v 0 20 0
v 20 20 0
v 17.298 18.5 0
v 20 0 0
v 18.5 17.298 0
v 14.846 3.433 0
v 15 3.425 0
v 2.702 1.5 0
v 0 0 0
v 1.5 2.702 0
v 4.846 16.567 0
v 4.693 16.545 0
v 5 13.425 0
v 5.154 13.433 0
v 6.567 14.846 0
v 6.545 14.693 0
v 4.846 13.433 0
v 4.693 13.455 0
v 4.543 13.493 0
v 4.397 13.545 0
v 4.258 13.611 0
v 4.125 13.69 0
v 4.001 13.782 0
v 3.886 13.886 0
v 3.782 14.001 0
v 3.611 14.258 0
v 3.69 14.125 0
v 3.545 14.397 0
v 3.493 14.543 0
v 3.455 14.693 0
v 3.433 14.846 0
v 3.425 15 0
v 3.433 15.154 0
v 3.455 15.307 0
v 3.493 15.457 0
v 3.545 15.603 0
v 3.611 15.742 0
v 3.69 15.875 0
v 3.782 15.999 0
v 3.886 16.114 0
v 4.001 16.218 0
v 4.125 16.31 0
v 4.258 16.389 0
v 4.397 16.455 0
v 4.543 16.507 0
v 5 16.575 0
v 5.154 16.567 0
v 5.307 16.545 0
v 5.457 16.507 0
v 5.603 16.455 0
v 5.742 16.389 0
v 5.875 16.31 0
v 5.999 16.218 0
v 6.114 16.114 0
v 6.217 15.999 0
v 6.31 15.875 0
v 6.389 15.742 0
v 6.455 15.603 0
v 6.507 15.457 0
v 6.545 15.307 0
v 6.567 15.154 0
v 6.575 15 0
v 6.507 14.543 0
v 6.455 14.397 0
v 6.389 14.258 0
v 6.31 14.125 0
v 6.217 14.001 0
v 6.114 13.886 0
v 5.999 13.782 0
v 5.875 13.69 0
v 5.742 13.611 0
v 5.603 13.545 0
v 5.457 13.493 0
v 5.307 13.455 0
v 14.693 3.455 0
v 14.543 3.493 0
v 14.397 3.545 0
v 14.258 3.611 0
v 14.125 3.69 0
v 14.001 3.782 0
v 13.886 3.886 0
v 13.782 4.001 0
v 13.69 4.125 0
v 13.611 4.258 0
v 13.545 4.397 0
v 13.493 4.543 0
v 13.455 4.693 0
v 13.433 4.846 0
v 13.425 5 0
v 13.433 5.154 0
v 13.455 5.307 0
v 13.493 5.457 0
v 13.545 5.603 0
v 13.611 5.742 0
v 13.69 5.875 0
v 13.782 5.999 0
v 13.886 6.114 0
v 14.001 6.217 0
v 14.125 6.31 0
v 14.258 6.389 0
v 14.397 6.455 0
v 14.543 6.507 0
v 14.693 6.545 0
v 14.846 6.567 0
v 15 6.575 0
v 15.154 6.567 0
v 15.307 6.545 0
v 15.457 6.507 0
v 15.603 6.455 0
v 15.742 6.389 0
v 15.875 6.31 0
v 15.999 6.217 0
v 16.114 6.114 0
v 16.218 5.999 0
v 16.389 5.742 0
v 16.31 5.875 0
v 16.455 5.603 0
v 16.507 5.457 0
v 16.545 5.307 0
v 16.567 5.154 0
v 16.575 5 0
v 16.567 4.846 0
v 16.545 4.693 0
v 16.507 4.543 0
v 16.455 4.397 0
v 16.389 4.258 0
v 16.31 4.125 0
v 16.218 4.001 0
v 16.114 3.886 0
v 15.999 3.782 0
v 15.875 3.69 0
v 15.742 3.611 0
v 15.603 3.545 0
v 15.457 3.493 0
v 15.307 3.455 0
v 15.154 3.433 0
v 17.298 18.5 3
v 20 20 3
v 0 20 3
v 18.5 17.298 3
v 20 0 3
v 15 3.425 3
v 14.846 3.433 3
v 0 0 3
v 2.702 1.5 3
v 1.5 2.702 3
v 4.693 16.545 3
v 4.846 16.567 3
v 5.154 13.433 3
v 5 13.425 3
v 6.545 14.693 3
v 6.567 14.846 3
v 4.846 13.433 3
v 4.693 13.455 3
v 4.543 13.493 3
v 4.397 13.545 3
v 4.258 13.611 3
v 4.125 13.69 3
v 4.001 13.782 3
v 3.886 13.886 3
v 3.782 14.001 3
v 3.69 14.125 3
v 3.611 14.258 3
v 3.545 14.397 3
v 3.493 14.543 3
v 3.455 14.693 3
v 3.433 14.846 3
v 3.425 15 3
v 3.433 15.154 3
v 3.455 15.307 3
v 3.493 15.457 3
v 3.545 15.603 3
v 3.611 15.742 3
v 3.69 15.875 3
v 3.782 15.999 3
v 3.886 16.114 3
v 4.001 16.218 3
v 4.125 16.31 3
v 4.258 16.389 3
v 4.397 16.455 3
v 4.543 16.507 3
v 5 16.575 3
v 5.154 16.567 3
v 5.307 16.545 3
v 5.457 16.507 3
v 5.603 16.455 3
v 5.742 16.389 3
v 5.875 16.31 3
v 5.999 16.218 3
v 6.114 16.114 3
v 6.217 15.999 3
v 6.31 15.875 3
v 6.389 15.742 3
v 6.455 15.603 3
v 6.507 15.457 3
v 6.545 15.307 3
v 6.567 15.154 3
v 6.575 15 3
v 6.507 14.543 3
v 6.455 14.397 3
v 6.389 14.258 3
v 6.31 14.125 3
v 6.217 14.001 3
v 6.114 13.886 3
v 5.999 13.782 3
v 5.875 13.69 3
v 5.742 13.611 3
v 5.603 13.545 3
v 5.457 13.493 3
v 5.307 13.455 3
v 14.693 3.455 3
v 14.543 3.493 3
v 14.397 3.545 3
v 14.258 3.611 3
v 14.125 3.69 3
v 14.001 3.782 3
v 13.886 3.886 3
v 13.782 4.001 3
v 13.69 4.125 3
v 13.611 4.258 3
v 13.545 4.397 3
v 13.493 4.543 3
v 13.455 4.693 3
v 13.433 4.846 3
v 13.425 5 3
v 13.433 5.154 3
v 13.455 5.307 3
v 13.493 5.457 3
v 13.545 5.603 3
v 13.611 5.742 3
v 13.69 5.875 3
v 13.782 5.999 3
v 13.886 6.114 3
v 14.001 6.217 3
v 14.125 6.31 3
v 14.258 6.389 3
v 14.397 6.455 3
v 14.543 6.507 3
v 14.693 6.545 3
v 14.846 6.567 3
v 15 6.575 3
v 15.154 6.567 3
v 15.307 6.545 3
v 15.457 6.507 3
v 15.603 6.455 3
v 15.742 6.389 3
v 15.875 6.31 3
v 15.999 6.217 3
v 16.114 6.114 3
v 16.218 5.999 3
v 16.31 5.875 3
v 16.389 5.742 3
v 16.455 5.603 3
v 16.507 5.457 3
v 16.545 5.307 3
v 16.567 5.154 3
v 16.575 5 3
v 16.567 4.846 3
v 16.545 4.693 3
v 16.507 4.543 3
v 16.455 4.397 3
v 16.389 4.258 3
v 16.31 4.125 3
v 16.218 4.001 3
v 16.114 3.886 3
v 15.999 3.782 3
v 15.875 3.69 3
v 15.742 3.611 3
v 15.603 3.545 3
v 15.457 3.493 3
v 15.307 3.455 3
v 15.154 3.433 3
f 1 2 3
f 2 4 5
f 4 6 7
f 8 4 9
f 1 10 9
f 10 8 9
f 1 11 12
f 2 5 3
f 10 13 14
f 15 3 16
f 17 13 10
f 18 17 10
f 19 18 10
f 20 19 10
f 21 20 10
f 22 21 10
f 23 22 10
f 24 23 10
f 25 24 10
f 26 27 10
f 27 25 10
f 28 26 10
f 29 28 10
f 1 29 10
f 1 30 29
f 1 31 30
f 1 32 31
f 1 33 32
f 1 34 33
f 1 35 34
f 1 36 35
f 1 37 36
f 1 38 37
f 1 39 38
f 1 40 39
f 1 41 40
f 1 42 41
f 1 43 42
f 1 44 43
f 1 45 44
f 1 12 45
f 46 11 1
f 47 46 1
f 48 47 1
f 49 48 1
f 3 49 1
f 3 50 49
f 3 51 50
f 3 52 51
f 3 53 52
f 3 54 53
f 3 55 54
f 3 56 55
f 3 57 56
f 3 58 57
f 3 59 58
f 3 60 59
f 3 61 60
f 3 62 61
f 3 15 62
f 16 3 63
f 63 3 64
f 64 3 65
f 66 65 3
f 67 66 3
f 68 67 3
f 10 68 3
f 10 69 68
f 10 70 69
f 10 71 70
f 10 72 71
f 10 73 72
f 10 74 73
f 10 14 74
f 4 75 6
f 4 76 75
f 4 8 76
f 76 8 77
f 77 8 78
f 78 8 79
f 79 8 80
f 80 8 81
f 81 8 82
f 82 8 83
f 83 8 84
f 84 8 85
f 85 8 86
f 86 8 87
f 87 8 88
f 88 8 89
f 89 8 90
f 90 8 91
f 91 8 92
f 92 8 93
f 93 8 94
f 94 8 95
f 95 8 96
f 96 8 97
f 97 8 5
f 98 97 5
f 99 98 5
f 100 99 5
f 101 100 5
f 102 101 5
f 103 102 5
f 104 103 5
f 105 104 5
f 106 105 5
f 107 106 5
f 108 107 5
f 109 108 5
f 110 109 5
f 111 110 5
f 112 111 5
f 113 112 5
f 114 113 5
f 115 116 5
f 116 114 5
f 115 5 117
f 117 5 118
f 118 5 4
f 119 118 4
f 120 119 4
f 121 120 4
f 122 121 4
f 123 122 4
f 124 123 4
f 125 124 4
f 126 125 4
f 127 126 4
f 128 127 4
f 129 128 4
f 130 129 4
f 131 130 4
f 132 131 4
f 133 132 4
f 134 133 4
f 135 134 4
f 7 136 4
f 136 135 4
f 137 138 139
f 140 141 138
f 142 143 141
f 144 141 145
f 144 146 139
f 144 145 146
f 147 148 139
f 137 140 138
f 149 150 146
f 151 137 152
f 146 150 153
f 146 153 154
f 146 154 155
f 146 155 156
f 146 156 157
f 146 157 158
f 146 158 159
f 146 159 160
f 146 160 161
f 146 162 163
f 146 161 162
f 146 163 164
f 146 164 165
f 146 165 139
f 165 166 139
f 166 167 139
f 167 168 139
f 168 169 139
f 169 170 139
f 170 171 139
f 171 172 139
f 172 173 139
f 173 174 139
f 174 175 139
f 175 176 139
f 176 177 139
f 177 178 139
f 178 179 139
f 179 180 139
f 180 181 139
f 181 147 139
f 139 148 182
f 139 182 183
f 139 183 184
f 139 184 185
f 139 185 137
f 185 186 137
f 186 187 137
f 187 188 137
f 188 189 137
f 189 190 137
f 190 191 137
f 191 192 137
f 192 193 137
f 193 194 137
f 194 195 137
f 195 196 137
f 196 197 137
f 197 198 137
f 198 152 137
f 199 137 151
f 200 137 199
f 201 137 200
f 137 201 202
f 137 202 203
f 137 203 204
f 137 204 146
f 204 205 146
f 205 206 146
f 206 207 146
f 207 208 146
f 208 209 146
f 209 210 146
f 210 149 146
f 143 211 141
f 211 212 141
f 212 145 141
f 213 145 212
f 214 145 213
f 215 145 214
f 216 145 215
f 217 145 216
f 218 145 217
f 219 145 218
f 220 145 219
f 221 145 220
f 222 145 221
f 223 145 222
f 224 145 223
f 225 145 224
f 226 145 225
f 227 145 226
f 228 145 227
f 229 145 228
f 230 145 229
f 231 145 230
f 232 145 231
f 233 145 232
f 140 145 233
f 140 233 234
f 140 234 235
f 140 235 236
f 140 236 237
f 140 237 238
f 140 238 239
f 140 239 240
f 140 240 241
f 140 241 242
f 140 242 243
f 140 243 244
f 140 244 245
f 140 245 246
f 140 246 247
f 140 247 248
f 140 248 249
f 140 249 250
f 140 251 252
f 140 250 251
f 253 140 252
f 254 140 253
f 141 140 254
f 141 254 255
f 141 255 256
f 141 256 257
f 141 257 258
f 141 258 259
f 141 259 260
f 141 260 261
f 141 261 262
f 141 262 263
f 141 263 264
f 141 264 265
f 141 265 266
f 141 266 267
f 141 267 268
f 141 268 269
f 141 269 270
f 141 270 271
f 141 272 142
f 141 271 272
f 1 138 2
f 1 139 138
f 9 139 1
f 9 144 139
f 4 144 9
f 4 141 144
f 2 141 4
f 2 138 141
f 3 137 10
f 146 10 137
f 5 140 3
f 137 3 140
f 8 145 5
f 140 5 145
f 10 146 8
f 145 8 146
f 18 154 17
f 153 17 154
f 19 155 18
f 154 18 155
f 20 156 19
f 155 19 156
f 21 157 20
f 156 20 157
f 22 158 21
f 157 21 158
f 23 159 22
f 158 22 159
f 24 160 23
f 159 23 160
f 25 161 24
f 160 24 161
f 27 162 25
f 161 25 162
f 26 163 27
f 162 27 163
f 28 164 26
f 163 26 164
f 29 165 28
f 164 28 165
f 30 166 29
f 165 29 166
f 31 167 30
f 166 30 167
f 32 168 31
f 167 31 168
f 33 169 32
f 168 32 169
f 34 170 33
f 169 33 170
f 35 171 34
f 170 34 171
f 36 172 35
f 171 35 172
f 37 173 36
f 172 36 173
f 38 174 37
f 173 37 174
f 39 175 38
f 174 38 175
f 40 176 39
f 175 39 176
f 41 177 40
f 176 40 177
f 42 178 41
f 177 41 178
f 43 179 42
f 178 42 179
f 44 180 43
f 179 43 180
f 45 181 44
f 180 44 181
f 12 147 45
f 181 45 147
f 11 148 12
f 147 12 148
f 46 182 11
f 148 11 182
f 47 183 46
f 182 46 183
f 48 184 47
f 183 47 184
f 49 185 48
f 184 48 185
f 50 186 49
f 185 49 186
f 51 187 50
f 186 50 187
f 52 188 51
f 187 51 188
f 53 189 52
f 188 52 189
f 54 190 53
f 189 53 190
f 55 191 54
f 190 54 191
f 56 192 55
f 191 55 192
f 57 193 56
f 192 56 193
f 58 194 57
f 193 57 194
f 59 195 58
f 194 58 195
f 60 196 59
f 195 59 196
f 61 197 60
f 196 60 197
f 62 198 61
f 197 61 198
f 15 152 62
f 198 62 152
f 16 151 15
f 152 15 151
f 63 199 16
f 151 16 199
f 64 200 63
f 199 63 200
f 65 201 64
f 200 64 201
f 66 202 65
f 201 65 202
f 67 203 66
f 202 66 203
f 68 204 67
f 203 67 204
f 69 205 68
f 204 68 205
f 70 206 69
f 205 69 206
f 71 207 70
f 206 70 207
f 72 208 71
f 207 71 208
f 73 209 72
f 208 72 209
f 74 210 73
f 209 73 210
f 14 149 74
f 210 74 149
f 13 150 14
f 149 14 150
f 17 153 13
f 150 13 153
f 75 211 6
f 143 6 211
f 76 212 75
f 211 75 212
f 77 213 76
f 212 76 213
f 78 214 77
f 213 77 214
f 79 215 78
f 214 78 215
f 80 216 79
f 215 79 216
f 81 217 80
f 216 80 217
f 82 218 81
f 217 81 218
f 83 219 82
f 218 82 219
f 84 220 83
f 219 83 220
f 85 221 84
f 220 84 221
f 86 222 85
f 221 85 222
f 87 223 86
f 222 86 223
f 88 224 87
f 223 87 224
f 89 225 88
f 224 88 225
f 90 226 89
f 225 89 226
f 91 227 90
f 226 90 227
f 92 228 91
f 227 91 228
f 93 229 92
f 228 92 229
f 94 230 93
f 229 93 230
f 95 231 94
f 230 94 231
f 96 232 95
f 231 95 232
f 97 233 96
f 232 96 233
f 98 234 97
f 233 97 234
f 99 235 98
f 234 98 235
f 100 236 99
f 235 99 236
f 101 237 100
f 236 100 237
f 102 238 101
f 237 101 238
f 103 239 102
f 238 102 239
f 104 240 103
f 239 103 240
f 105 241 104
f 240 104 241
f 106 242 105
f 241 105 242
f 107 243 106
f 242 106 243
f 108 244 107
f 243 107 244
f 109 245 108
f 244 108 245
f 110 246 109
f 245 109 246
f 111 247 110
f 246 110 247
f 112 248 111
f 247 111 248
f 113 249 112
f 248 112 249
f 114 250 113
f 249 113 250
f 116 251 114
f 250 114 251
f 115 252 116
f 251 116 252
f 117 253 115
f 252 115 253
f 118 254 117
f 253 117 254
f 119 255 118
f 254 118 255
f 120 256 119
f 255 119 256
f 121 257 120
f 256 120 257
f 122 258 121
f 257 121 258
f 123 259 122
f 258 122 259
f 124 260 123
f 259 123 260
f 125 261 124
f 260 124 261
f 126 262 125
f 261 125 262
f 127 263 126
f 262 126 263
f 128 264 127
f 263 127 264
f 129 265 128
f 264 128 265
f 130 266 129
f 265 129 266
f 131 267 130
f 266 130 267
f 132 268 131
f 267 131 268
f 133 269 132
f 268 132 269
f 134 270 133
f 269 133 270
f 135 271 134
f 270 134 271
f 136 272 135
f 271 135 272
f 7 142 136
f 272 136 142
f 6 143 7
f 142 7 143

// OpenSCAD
// file: miniature-bases/common/params.scad
$fn = $preview ? 32 : 64;

// Value of kerf to apply when lasercutting things.
// Value is based on the experience using Epilog Mini machine in
// Google WFC Makerspace.
kerf = 0.2;

// Spacing between insert and miniatures bases to allow to slick fit.
insert_spacing = 0.2;
magnet_spacing = 0.15;

// Default values
//
// Default diameter of magnets used for my miniatures.
default_magnet_diameter = 3;
base_height = 3;
pin_height = 2.5;
// file: miniature-bases/common/kow.scad
include <params.scad>;

module MagnetSockets(unit_type, only_diagonal = false) {
  baseSize = BaseSize(unit_type);

  translate([ 5, baseSize[1] - 5 ]) children(0);
  translate([ baseSize[0] - 5, 5 ]) children(0);

  if (!only_diagonal) {
    translate([ 5, 5 ]) children(0);
    translate([ baseSize[0] - 5, baseSize[1] - 5 ]) children(0);
  }
}

module Magnet(d = default_magnet_diameter, offset = 0) {
  circle(d = d + offset);
}

module BM4Sockets(unit_type, spacing, only_diagonal = false) {
  MagnetSockets(unit_type = unit_type, only_diagonal = only_diagonal) {
    Magnet(offset = spacing);
  }
}

module Base(unit_type, extraMargin = [ 0, 0 ]) {
  square(BaseSize(unit_type) + extraMargin);
}

function BaseSize(unit_type) = unit_type == "infantry"         ? [ 20, 20 ]
                               : unit_type == "heavy_infantry" ? [ 25, 25 ]
                               : unit_type == "cavalry"        ? [ 25, 50 ]
                               : unit_type == "lrginf"         ? [ 40, 40 ]
                               : unit_type == "lrgcav"         ? [ 50, 50 ]
                               : unit_type == "titan"          ? [ 75, 75 ]
                                                               : [ 10, 10 ];

function BaseNum(unit_type, unitSize) =
    unit_type == "infantry"  ? unitSize == "legion"     ? [ 10, 6 ]
                               : unitSize == "horde"    ? [ 10, 4 ]
                               : unitSize == "regiment" ? [ 5, 4 ]
                                                        : [ 5, 2 ]
    : unit_type == "cavalry" ? unitSize == "regiment" ? [ 5, 2 ] : [ 5, 1 ]
    : unit_type == "lrginf"  ? unitSize == "regiment" ? [ 3, 1 ] : [ 3, 2 ]
    : unit_type == "lrgcav"  ? unitSize == "regiment" ? [ 3, 1 ]
                               : unitSize == "horde"  ? [ 3, 2 ]
                                                      : [ 1, 1 ]
                             : [ 1, 1 ];
// file: miniature-bases/libbase.scad
include <common/kow.scad>;

module MagnetHole() { Magnet(offset = magnet_spacing); } 

module BaseBM4(unit_type, only_diagonal = false) {
  linear_extrude(height = base_height) {
    difference() {
      Base(unit_type = unit_type);
      union() {
        MagnetSockets(unit_type = unit_type, only_diagonal = only_diagonal) {
          MagnetHole();
        }
        children();
      }
    }
  }
}

SLOTTA_ANGLE = 0;
SLOTTA_SLOT_MARGIN = 1.5; 
SLOT_WIDTH = 1.7;  


module SlottaBM4(a = SLOTTA_ANGLE, unit_type = "infantry", slot_margin = SLOTTA_SLOT_MARGIN) {
  base_size = BaseSize(unit_type);

  // slot_length = 18; for a = 0 (as in GW bases)
  // total_slot_margin = 4; for a = 45 (as in GW bases)

  slot_length =
      (base_size[0] - 2 * slot_margin - cos(90 - a) * SLOT_WIDTH) / cos(a);

  BaseBM4(unit_type = unit_type, only_diagonal = true) {
    translate(0.5 * base_size) rotate(a)
        square([ slot_length, SLOT_WIDTH ], center = true);
  };
}

module CavalrySlot() {
  slotWidth = 2.5;
  slotLength = 35;
  slotSpacing = 2.8;
  baseSize = BaseSize("cavalry");

  translate([
    (baseSize[0] - 2 * slotWidth - slotSpacing) / 2,
    (baseSize[1] - slotLength) / 2
  ]) {
    square([ slotWidth, slotLength ]);
    translate([ slotSpacing + slotWidth, 0 ]) square([ slotWidth, slotLength ]);
  }
}
// main file
use <miniature-bases/libbase.scad>;

$fn = $preview ? 32 : 64;

SlottaBM4(45);
